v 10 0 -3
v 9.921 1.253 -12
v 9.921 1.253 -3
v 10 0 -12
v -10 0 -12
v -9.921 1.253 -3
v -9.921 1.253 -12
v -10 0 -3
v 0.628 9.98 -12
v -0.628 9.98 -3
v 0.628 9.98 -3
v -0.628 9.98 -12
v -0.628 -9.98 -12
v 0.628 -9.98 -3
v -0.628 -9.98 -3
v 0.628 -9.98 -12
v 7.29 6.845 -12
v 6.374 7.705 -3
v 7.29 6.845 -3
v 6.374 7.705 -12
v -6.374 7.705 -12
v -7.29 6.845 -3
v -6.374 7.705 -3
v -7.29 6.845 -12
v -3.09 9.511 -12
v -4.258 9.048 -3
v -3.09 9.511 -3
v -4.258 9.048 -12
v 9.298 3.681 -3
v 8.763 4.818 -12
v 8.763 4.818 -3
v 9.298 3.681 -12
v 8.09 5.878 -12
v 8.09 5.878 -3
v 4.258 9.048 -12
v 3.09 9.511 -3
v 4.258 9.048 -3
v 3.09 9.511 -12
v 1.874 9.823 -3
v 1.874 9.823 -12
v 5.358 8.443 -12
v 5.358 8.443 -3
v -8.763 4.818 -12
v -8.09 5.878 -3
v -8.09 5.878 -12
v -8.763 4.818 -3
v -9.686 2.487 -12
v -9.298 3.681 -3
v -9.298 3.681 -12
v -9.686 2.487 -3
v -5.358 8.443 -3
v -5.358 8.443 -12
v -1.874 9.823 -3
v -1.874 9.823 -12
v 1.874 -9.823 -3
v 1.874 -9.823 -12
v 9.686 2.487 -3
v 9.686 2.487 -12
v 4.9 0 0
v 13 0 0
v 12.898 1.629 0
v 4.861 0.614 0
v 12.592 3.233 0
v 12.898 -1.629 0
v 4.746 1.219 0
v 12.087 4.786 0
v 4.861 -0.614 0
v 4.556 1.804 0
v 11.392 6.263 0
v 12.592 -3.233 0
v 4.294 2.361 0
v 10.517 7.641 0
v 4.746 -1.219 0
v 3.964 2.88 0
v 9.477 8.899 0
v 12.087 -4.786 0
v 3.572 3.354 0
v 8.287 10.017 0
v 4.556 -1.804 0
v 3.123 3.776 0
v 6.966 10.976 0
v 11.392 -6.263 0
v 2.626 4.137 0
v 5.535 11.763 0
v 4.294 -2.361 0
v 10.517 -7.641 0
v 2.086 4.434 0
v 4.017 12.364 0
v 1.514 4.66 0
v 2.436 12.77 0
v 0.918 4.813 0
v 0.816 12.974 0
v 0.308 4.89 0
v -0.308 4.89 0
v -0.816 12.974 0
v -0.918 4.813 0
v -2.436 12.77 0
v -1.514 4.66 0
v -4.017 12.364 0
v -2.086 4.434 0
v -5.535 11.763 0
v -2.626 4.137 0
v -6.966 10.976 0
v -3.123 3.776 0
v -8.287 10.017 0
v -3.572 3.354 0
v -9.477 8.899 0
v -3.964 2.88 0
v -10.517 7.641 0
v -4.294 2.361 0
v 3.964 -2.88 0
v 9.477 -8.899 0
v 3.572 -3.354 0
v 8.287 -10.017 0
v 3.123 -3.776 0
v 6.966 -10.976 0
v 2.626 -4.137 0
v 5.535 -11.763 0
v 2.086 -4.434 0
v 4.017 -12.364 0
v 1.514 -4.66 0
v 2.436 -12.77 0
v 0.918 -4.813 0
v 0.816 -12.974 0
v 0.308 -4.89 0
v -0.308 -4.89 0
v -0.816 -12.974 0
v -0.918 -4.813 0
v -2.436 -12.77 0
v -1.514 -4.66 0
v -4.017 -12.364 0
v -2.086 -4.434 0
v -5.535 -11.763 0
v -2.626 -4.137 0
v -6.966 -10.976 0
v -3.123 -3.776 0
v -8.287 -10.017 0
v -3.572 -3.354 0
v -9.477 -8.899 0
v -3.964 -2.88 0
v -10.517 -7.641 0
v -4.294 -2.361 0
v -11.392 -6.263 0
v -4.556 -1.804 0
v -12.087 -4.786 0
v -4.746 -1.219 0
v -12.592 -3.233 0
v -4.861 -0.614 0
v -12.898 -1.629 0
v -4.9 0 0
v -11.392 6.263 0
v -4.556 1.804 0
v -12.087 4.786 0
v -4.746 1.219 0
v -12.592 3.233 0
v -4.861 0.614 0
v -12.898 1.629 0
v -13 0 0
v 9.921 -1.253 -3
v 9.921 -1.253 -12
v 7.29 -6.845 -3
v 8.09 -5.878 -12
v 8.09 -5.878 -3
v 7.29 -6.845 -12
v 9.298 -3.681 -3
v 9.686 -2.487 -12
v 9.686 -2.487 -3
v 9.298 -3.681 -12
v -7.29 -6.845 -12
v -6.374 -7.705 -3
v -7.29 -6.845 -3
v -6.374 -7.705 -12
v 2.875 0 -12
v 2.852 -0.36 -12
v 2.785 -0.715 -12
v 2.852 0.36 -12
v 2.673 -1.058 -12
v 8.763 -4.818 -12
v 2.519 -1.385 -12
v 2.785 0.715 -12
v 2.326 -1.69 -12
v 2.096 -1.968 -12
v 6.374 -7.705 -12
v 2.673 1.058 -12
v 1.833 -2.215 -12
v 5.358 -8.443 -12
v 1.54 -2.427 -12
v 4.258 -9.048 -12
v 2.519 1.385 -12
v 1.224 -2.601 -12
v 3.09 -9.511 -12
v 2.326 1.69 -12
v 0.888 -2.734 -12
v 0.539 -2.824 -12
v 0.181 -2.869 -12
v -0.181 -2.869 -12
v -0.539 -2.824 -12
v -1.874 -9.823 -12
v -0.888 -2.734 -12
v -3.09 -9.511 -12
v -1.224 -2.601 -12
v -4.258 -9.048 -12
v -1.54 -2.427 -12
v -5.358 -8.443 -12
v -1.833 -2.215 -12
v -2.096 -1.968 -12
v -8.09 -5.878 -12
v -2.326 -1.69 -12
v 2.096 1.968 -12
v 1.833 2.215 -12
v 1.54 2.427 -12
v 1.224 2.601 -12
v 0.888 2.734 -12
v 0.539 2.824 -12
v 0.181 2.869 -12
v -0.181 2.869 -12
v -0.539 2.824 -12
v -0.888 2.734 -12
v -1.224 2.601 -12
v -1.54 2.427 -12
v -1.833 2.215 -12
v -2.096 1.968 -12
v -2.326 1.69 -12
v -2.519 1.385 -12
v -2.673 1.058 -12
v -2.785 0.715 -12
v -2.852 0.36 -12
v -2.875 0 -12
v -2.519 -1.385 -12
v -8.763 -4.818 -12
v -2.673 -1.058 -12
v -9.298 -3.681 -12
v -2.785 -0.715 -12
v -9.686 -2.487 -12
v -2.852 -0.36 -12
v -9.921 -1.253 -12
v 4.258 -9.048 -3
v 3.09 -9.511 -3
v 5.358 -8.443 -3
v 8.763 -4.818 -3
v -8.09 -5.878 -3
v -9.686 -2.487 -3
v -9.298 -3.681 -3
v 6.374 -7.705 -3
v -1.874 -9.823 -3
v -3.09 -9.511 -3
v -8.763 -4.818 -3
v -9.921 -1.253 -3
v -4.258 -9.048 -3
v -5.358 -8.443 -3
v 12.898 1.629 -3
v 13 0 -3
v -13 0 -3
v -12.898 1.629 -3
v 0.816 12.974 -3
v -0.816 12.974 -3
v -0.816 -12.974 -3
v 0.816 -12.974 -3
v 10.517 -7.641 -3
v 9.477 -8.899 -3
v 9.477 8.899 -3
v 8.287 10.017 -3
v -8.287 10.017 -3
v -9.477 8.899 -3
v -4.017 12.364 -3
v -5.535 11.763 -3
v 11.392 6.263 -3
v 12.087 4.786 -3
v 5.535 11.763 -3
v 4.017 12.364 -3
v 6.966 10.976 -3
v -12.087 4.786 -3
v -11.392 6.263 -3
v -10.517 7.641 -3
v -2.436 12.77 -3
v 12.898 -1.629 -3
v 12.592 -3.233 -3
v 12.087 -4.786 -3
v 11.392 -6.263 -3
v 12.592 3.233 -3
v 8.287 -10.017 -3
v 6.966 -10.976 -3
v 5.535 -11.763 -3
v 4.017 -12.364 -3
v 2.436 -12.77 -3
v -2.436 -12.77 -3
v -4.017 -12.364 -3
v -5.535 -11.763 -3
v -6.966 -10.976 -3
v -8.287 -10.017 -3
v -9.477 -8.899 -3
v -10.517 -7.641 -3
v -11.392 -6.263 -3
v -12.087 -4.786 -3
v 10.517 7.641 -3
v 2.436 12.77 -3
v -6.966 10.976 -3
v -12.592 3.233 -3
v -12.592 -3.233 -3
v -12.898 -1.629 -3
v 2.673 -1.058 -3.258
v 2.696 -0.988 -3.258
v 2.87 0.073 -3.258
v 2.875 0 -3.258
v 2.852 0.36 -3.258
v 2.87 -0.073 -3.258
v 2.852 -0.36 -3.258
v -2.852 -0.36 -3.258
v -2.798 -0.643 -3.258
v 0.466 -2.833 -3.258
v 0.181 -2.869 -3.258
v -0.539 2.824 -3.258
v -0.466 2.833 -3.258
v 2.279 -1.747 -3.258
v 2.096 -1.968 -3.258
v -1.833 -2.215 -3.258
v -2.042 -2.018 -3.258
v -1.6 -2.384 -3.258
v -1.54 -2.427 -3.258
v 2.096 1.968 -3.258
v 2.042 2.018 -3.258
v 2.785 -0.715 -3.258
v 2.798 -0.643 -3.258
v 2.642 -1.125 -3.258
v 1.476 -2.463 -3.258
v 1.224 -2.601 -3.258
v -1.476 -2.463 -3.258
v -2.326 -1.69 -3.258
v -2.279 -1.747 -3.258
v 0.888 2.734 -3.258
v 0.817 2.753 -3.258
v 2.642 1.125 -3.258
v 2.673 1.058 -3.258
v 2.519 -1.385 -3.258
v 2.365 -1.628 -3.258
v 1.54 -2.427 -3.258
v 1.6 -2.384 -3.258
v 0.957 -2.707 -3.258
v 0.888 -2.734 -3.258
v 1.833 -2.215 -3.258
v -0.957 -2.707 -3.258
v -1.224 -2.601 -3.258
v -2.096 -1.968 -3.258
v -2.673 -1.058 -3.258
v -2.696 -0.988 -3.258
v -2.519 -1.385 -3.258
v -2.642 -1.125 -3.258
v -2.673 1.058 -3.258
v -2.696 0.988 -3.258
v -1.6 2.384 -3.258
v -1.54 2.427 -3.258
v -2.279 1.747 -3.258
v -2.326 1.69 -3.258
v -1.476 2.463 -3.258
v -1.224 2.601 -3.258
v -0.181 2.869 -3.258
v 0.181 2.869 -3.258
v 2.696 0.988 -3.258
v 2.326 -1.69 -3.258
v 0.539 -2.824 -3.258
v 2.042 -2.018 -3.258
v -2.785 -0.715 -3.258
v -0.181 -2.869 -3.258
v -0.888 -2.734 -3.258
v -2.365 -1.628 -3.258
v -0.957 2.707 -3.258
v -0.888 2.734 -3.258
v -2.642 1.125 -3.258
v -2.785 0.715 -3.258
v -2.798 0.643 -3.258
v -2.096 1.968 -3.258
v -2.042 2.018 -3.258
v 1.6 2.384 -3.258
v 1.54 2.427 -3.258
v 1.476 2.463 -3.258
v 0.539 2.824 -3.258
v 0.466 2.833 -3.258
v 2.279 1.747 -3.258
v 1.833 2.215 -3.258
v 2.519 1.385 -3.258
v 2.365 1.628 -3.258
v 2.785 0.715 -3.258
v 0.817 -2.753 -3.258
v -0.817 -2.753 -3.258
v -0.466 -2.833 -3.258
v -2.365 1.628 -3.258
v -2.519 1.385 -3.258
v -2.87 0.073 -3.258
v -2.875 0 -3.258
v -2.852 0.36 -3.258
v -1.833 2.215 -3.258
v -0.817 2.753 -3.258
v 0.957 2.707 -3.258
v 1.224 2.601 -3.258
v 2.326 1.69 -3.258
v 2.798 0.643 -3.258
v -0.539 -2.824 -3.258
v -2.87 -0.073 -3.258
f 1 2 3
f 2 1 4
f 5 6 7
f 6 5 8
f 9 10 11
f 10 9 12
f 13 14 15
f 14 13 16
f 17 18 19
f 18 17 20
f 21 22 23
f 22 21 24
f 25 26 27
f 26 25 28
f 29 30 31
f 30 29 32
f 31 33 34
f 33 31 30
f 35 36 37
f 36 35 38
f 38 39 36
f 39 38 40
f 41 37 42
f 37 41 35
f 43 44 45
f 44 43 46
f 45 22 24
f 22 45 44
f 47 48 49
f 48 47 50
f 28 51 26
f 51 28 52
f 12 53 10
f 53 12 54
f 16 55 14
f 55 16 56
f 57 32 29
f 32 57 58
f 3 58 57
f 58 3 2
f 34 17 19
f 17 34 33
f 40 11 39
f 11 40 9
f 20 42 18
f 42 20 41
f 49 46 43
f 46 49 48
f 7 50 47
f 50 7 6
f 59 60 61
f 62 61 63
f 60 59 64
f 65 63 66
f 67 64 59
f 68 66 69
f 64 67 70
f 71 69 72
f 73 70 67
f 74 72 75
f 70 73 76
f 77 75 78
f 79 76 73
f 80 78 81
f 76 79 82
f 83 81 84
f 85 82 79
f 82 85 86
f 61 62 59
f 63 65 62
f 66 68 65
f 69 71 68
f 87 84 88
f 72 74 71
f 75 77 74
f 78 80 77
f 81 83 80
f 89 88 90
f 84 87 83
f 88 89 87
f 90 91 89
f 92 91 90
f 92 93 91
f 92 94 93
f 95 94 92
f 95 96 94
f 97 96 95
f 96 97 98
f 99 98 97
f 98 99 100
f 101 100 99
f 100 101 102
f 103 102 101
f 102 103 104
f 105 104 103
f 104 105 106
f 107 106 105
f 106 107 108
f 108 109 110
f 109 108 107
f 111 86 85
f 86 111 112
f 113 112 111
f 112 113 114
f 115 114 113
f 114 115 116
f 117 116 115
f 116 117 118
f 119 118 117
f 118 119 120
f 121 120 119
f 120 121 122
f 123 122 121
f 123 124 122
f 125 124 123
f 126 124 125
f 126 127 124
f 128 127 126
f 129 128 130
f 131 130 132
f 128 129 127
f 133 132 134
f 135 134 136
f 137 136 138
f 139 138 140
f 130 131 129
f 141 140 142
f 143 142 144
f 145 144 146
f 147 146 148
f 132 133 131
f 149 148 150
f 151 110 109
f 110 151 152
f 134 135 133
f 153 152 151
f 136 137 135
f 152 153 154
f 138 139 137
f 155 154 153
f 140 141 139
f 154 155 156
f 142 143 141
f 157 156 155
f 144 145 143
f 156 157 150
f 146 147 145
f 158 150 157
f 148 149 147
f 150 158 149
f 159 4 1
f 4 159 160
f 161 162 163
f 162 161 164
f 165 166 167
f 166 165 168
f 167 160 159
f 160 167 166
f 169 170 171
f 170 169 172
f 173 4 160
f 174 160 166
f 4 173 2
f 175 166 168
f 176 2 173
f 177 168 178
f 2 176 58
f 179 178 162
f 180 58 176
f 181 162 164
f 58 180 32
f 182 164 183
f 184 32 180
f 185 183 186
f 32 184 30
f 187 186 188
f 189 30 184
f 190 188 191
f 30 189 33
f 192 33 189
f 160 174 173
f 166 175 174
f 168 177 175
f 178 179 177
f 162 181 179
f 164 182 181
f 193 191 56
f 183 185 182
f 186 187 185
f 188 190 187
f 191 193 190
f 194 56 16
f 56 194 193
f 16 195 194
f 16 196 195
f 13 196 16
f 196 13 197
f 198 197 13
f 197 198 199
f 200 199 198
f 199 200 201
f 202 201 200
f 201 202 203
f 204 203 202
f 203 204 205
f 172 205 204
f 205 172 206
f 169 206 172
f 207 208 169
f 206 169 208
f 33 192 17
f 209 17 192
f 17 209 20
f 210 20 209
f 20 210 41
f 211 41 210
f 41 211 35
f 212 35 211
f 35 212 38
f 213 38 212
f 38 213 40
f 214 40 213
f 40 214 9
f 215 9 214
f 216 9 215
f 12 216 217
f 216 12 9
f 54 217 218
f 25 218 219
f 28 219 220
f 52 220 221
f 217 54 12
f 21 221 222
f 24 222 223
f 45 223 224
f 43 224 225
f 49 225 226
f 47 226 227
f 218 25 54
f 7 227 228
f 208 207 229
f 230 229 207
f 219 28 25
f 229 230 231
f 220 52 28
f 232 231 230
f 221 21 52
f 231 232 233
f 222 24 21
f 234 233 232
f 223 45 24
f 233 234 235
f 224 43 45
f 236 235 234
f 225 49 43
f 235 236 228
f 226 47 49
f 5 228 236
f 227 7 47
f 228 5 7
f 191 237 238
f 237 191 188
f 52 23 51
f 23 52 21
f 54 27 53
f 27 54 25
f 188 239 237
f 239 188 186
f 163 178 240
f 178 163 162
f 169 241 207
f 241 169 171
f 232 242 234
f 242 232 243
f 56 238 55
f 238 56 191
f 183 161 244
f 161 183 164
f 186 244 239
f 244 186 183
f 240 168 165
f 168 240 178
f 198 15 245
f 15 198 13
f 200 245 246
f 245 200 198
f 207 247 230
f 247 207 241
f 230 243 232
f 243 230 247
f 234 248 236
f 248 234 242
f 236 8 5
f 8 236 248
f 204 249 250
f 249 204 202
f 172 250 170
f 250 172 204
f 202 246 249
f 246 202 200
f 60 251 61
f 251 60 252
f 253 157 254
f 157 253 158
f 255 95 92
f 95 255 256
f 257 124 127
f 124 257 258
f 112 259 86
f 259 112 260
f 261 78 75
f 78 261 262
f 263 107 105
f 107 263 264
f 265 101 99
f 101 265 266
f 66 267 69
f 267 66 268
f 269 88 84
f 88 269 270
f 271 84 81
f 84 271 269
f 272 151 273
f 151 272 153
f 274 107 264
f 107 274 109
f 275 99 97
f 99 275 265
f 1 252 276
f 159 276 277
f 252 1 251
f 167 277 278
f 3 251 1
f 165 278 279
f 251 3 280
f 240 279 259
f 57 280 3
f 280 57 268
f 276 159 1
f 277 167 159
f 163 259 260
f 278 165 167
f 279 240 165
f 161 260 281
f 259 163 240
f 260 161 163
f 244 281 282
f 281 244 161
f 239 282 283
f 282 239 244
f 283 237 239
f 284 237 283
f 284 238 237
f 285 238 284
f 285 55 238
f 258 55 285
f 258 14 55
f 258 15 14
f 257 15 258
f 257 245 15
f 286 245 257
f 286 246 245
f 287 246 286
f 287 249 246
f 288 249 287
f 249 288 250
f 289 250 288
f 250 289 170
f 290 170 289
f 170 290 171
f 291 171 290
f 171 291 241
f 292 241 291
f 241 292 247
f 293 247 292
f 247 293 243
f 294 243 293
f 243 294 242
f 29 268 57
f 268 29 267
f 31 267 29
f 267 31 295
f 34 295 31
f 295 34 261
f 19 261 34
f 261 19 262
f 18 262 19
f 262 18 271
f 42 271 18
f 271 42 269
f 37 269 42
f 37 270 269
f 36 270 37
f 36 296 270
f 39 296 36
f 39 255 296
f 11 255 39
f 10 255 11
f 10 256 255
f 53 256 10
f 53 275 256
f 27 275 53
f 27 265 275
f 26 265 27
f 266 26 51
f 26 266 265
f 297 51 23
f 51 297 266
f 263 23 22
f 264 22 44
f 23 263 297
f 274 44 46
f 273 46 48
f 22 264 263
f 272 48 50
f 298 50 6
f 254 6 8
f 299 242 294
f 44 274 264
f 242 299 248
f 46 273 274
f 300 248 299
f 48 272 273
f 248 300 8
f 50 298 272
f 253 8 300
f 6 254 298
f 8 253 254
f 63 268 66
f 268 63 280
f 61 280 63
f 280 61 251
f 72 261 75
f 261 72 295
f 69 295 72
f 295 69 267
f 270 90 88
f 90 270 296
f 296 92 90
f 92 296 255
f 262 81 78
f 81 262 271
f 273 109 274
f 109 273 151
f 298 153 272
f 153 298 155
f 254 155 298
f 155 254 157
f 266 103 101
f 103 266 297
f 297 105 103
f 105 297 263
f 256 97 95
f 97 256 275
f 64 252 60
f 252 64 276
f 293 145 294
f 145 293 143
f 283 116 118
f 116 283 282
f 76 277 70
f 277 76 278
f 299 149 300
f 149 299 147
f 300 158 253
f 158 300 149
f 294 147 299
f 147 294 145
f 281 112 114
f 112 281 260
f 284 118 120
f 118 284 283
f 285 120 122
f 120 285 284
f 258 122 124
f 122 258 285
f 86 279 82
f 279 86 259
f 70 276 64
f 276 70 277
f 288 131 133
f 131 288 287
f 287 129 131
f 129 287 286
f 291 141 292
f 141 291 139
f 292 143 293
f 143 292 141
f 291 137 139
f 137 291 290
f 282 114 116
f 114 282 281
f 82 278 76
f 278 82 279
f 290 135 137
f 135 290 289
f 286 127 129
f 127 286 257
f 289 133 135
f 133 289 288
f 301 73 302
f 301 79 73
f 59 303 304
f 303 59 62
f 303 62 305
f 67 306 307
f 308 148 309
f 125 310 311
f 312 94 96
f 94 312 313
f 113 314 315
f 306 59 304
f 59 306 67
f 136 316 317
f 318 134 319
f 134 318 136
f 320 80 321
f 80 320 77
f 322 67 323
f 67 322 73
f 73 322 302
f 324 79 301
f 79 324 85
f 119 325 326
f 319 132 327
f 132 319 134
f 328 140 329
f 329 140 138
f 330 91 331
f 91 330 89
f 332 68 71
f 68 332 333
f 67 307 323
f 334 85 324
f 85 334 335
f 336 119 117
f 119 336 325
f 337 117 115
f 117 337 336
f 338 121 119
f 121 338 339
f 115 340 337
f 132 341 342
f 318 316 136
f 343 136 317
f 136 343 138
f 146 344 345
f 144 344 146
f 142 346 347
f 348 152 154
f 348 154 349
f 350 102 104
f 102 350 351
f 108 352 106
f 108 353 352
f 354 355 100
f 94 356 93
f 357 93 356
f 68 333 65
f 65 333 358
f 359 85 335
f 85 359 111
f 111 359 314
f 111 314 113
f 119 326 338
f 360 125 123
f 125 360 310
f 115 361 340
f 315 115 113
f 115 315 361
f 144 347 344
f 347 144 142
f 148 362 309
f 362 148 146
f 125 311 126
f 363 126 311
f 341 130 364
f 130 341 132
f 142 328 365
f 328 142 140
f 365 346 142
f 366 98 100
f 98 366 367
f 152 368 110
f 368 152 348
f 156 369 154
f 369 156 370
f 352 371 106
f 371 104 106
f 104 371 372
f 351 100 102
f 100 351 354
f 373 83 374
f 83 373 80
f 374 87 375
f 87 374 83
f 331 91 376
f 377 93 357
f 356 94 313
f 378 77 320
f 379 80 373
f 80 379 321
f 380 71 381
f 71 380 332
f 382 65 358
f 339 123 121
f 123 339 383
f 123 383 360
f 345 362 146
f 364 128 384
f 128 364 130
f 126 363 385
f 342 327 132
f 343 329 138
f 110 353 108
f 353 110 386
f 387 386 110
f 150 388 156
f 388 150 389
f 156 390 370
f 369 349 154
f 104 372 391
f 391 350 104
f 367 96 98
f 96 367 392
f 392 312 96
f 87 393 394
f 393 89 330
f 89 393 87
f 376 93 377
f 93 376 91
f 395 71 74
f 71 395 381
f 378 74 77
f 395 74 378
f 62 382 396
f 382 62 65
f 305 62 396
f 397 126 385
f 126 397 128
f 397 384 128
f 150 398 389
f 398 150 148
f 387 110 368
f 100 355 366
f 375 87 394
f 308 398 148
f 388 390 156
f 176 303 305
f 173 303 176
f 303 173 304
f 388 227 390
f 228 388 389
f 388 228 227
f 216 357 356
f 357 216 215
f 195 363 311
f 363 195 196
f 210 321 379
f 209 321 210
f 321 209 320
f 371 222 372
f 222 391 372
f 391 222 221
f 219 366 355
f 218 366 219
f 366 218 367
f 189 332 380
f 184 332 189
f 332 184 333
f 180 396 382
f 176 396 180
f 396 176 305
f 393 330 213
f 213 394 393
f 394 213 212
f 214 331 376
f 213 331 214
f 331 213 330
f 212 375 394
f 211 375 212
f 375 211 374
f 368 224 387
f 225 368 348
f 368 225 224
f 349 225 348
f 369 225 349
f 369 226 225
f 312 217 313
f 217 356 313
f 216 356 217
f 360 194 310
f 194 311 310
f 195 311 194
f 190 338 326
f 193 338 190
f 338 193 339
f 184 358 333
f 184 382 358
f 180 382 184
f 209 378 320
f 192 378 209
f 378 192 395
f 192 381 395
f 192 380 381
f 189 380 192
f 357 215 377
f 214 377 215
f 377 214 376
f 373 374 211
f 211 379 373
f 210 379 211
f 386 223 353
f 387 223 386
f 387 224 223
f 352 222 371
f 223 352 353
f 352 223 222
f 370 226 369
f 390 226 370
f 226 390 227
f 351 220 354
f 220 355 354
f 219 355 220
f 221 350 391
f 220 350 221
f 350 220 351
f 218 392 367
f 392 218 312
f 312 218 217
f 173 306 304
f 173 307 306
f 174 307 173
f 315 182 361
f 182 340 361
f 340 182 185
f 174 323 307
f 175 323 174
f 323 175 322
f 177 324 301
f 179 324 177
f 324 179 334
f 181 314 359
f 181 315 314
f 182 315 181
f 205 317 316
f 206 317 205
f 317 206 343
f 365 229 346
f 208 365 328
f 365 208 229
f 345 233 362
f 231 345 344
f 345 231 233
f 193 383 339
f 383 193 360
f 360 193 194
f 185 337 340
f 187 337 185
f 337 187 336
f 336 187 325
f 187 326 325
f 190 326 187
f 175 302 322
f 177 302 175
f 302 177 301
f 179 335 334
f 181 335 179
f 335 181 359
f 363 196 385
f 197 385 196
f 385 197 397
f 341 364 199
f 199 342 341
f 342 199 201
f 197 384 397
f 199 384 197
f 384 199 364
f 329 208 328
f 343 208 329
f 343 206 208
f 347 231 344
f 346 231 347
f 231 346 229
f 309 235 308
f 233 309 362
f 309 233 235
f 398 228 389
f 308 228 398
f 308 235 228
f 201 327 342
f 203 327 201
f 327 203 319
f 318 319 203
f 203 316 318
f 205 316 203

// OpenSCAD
$fn = 50;


difference() {
	union() {
		translate(v = [0, 0, -12.0000000000]) {
			cylinder(h = 12, r = 10.0000000000);
		}
		translate(v = [0, 0, -3.0000000000]) {
			cylinder(h = 3, r = 13.0000000000);
		}
	}
	union() {
		translate(v = [0, 0, 0]) {
			rotate(a = [0, 0, 0]) {
				difference() {
					union() {
						#translate(v = [0, 0, -3.7000000000]) {
							cylinder(h = 3.7000000000, r = 10.0000000000, r1 = 2.6000000000, r2 = 4.9000000000);
						}
						#translate(v = [0, 0, -12.0000000000]) {
							cylinder(h = 12, r = 2.6000000000);
						}
						#translate(v = [0, 0, -12.0000000000]) {
							cylinder(h = 12, r = 2.8750000000);
						}
						#translate(v = [0, 0, -12.0000000000]) {
							cylinder(h = 12, r = 2.6000000000);
						}
					}
					union();
				}
			}
		}
	}
}
